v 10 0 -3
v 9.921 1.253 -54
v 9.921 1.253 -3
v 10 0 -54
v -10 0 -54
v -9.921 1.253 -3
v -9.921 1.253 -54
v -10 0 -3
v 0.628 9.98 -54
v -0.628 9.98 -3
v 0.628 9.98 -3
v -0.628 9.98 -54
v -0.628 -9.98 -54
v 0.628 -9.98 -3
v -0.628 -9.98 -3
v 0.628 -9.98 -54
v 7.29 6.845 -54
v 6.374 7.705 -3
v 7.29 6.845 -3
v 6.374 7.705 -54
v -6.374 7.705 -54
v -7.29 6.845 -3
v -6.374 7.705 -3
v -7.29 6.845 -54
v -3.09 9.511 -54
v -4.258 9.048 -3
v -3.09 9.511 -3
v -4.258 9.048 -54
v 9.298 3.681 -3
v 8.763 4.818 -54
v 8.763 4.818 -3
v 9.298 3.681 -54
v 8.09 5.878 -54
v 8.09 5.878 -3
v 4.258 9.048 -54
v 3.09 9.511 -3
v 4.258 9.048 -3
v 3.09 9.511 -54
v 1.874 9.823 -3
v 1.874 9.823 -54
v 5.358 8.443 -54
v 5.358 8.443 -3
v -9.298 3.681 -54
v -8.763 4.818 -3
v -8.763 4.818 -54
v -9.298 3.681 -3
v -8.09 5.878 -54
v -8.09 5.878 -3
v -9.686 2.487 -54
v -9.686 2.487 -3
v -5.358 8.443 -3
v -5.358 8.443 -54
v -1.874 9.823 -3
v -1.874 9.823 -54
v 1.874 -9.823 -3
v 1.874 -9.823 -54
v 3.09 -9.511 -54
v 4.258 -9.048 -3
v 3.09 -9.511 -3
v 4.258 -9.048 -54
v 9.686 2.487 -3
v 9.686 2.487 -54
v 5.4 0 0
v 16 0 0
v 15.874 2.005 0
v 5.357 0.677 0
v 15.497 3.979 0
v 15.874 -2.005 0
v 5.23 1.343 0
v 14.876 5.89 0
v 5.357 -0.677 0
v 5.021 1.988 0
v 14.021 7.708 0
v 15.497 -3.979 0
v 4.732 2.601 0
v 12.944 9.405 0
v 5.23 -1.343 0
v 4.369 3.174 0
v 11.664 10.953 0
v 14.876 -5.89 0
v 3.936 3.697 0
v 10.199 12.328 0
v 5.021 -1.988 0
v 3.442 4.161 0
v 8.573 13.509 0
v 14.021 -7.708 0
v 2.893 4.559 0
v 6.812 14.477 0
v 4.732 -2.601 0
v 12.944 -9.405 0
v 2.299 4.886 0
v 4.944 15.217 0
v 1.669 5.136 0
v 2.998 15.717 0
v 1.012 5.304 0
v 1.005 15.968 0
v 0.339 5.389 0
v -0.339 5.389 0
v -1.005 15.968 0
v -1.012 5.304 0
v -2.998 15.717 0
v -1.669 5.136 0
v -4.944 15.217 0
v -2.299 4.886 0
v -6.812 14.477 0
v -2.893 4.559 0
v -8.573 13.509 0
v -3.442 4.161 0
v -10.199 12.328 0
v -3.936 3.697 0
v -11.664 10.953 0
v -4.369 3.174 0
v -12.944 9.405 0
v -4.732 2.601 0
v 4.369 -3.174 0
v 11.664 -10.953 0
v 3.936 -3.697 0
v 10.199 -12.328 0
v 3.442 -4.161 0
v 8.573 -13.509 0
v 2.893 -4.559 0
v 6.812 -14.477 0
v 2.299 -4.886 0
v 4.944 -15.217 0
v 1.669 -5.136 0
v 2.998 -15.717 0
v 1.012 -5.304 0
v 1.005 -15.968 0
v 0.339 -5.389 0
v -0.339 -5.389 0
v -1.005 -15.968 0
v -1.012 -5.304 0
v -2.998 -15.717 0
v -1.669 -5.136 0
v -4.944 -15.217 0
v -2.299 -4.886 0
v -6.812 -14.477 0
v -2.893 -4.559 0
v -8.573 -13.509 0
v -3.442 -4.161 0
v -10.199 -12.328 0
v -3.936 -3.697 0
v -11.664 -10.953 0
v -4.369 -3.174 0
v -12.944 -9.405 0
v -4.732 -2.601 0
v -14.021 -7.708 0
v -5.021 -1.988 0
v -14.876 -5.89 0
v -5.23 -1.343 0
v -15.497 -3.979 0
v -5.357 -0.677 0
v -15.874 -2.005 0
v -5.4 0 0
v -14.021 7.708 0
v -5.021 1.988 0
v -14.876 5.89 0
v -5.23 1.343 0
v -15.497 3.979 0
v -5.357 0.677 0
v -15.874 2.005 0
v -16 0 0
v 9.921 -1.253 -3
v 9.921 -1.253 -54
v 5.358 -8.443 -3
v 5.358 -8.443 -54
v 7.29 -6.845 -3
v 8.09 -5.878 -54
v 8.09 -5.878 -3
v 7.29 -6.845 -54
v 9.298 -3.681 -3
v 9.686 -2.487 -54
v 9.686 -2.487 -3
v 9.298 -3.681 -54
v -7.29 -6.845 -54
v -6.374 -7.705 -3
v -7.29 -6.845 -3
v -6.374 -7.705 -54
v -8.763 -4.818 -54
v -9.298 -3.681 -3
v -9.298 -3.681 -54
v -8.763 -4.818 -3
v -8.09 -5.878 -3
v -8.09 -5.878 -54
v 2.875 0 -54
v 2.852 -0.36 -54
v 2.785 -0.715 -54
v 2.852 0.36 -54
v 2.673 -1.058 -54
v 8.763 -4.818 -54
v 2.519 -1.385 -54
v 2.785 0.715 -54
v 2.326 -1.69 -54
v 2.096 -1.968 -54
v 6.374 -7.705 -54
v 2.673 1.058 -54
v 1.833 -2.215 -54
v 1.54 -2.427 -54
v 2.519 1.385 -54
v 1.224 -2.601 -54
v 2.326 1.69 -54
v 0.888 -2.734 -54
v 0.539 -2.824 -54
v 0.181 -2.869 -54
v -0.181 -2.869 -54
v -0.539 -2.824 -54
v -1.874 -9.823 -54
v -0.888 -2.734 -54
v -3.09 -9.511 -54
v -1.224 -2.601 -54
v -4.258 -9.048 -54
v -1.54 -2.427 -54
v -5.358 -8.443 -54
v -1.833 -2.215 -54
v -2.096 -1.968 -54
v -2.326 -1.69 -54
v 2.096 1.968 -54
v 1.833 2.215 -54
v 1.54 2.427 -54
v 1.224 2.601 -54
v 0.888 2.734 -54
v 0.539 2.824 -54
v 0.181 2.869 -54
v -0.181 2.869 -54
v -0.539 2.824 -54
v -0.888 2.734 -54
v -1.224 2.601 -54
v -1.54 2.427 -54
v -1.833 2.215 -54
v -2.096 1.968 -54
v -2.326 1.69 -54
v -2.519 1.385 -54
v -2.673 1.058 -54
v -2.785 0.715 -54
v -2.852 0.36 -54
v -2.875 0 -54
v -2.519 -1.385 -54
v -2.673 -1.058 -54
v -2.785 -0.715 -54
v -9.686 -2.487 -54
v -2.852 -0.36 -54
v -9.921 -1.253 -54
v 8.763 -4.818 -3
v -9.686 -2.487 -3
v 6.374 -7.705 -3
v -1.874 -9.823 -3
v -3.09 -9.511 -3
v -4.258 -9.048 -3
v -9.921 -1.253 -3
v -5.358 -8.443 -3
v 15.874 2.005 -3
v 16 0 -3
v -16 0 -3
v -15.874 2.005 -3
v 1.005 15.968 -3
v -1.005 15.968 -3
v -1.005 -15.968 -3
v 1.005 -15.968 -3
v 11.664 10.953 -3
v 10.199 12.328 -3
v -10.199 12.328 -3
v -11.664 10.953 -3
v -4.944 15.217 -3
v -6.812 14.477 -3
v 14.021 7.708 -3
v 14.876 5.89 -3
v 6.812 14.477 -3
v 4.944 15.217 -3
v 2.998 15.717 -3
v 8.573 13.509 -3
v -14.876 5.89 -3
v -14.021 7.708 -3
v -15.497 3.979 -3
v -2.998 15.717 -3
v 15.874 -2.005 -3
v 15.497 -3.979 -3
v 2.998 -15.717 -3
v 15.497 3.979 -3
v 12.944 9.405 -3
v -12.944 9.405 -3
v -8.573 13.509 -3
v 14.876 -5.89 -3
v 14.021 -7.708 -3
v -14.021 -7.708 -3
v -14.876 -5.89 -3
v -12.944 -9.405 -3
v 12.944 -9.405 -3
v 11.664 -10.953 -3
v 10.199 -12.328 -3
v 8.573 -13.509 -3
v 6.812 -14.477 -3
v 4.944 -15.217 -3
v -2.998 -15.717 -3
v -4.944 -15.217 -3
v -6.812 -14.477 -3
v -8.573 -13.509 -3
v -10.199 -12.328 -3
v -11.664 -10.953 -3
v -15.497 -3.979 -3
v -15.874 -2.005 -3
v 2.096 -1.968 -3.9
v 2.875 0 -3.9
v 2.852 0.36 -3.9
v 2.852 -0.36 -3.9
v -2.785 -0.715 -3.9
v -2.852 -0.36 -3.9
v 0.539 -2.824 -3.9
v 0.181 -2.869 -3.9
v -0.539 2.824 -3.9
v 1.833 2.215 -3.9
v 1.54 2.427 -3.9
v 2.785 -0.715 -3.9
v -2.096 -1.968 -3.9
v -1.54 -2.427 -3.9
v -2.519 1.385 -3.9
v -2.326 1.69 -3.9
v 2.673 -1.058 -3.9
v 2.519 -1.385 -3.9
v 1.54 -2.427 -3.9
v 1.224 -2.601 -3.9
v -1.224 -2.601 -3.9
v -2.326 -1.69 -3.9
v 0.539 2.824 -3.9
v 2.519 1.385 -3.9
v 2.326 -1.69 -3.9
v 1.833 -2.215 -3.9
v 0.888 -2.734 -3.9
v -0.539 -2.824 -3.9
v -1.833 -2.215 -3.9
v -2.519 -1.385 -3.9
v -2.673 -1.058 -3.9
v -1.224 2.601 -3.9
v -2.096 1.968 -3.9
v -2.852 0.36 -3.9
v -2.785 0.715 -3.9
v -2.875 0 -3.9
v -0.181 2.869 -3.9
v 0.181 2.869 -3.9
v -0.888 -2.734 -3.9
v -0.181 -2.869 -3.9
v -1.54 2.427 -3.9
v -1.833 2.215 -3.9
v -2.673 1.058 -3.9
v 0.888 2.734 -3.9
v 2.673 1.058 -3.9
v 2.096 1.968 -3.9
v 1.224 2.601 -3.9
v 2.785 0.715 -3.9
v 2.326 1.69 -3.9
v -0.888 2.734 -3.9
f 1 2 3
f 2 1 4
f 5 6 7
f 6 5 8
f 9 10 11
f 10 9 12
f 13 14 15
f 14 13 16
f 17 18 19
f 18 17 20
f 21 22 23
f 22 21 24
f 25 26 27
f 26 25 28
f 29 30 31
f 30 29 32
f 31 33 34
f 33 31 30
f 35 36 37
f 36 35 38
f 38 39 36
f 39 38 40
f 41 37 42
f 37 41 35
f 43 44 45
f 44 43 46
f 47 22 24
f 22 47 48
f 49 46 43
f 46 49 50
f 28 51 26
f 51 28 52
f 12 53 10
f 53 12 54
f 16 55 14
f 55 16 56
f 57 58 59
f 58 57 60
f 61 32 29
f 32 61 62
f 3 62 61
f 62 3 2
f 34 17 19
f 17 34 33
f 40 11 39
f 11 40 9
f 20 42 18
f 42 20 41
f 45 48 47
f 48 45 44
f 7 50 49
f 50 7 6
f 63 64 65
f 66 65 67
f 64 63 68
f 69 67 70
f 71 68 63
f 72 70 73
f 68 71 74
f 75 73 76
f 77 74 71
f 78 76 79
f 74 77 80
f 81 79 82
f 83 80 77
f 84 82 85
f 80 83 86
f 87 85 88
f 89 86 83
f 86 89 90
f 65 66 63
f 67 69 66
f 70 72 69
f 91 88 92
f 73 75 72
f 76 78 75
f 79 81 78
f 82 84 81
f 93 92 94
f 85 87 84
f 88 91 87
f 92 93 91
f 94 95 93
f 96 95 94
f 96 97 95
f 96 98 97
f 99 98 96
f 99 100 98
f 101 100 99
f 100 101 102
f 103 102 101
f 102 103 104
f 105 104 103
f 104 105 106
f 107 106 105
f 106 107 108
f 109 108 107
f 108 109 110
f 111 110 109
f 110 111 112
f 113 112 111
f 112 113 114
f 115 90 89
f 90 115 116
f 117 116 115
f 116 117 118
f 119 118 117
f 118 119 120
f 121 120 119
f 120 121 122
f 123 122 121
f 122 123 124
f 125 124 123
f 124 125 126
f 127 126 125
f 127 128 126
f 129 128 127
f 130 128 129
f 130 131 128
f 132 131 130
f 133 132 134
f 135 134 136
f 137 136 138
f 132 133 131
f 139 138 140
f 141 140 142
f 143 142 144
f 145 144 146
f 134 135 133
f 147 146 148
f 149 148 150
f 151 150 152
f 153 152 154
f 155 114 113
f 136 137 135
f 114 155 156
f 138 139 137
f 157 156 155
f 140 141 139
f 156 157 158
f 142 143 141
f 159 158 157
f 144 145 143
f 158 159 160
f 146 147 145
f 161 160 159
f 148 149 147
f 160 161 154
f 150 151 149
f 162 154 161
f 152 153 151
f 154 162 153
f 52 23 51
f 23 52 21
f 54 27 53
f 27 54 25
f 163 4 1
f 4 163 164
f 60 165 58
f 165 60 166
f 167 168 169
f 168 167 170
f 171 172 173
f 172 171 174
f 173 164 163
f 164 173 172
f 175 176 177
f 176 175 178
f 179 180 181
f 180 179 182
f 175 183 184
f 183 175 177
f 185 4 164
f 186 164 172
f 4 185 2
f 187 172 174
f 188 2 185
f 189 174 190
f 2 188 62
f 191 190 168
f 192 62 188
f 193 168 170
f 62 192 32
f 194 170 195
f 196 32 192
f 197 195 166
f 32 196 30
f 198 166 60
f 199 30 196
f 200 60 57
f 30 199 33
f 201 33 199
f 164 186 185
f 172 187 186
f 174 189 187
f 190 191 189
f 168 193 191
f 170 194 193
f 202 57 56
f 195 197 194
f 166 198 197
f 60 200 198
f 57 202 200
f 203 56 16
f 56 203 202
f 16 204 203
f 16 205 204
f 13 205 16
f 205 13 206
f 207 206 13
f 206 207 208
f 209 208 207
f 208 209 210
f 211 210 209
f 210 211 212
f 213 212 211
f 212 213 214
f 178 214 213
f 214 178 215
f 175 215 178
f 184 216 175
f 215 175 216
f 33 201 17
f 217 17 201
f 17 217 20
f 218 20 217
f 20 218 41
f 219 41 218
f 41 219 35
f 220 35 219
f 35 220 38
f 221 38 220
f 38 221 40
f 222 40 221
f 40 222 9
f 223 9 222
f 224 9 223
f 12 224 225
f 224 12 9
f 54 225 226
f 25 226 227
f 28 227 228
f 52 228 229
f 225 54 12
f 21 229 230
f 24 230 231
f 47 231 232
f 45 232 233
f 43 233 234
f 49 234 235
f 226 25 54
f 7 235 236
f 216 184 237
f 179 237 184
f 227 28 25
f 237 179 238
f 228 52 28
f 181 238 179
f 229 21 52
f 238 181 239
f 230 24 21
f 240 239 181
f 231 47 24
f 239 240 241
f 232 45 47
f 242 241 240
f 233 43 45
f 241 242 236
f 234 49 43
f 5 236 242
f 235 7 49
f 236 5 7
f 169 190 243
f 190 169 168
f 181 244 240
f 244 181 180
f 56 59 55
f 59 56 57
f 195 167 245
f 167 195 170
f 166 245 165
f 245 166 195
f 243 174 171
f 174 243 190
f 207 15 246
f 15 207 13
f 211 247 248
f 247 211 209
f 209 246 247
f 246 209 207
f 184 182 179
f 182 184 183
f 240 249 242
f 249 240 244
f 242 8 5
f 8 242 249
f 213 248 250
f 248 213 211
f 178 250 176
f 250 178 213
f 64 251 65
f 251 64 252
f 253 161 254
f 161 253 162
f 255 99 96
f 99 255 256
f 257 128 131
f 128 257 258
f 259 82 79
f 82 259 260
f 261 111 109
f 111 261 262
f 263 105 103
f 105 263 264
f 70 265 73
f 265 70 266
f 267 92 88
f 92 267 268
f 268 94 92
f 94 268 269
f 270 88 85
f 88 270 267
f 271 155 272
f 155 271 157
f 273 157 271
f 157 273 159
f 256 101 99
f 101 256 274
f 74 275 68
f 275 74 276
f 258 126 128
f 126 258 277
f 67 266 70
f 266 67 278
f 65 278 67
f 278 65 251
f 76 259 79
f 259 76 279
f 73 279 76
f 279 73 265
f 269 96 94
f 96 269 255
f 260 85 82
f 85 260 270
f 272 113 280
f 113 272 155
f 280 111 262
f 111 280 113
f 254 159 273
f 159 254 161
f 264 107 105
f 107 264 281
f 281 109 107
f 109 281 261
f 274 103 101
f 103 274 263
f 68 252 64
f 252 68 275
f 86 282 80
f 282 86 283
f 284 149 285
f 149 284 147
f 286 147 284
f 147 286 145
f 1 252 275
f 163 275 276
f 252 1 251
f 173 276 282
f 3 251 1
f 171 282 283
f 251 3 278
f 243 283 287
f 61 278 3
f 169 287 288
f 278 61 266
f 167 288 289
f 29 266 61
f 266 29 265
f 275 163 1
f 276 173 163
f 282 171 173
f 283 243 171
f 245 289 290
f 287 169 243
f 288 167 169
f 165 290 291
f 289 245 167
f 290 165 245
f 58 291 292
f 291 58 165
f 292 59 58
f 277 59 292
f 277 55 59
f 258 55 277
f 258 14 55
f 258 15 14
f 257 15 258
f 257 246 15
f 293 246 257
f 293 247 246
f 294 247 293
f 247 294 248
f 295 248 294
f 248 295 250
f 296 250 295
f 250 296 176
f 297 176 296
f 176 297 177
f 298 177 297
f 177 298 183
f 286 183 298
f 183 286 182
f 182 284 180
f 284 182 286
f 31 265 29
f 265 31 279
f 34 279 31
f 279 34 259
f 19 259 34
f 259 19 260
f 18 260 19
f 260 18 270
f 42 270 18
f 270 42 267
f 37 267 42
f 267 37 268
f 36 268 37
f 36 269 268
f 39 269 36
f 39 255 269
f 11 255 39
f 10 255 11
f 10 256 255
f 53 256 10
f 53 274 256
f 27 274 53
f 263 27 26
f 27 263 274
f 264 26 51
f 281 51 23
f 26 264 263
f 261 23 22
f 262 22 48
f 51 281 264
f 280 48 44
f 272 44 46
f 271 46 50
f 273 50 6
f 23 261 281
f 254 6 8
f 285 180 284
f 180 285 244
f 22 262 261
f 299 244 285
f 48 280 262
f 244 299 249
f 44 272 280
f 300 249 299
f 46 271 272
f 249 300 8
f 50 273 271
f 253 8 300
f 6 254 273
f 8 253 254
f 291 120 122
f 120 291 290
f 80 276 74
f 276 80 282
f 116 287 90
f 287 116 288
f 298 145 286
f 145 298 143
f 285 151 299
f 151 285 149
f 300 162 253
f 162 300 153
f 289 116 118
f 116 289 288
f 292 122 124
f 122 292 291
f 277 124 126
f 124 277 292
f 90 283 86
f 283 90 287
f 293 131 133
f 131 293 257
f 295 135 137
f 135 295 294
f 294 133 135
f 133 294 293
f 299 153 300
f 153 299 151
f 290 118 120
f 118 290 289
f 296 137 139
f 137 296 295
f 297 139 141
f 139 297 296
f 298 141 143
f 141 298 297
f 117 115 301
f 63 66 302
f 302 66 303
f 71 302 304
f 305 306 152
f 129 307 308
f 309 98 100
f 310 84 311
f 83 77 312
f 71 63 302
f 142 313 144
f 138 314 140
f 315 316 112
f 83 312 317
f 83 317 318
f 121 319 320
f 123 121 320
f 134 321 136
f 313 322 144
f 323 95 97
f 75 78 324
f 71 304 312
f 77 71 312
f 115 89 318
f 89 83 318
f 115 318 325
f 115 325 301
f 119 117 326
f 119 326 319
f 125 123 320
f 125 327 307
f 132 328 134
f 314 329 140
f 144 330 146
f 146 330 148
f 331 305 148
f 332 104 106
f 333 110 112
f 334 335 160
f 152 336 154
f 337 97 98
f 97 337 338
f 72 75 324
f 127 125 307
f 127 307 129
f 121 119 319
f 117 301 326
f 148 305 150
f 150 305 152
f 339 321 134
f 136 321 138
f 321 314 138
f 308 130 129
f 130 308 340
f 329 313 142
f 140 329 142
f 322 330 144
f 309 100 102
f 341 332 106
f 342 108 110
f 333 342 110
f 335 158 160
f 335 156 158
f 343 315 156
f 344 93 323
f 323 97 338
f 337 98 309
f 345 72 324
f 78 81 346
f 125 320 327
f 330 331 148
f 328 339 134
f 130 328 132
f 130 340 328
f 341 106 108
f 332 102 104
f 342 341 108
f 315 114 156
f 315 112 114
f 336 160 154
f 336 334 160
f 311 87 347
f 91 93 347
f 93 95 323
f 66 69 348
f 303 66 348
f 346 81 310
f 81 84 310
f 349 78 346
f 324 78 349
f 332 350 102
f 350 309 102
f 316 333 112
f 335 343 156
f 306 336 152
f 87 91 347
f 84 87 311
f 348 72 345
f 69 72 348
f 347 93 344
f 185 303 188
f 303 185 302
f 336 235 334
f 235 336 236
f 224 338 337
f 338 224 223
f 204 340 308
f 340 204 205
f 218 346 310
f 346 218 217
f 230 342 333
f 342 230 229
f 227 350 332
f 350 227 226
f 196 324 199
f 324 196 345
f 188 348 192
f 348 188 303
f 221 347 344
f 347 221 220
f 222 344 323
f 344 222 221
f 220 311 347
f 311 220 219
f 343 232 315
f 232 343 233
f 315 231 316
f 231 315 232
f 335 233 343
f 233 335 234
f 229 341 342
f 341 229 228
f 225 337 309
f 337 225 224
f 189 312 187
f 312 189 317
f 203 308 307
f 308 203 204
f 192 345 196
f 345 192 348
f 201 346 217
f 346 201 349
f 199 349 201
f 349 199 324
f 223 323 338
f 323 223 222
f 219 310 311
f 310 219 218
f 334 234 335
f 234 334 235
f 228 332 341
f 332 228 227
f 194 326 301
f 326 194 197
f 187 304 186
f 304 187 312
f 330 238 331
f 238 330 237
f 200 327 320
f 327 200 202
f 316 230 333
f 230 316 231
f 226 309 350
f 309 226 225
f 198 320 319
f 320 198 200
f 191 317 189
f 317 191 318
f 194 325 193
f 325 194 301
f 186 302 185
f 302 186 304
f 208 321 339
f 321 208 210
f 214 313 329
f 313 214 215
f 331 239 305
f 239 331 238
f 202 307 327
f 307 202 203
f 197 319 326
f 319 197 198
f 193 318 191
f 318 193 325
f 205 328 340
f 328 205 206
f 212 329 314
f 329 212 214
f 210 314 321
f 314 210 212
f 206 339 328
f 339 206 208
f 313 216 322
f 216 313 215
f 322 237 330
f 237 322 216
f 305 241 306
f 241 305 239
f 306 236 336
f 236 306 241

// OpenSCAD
$fn = 50;


difference() {
	union() {
		translate(v = [0, 0, -54.0000000000]) {
			cylinder(h = 54, r = 10.0000000000);
		}
		translate(v = [0, 0, -3.0000000000]) {
			cylinder(h = 3, r = 16.0000000000);
		}
	}
	union() {
		translate(v = [0, 0, 0]) {
			rotate(a = [0, 0, 0]) {
				difference() {
					union() {
						#translate(v = [0, 0, -54.0000000000]) {
							cylinder(h = 54, r = 2.6000000000);
						}
						#translate(v = [0, 0, -3.9000000000]) {
							cylinder(h = 3.9000000000, r1 = 2.8750000000, r2 = 5.4000000000);
						}
						#translate(v = [0, 0, -54.0000000000]) {
							cylinder(h = 54, r = 2.8750000000);
						}
						#translate(v = [0, 0, -54.0000000000]) {
							cylinder(h = 54, r = 2.6000000000);
						}
					}
					union();
				}
			}
		}
	}
}
